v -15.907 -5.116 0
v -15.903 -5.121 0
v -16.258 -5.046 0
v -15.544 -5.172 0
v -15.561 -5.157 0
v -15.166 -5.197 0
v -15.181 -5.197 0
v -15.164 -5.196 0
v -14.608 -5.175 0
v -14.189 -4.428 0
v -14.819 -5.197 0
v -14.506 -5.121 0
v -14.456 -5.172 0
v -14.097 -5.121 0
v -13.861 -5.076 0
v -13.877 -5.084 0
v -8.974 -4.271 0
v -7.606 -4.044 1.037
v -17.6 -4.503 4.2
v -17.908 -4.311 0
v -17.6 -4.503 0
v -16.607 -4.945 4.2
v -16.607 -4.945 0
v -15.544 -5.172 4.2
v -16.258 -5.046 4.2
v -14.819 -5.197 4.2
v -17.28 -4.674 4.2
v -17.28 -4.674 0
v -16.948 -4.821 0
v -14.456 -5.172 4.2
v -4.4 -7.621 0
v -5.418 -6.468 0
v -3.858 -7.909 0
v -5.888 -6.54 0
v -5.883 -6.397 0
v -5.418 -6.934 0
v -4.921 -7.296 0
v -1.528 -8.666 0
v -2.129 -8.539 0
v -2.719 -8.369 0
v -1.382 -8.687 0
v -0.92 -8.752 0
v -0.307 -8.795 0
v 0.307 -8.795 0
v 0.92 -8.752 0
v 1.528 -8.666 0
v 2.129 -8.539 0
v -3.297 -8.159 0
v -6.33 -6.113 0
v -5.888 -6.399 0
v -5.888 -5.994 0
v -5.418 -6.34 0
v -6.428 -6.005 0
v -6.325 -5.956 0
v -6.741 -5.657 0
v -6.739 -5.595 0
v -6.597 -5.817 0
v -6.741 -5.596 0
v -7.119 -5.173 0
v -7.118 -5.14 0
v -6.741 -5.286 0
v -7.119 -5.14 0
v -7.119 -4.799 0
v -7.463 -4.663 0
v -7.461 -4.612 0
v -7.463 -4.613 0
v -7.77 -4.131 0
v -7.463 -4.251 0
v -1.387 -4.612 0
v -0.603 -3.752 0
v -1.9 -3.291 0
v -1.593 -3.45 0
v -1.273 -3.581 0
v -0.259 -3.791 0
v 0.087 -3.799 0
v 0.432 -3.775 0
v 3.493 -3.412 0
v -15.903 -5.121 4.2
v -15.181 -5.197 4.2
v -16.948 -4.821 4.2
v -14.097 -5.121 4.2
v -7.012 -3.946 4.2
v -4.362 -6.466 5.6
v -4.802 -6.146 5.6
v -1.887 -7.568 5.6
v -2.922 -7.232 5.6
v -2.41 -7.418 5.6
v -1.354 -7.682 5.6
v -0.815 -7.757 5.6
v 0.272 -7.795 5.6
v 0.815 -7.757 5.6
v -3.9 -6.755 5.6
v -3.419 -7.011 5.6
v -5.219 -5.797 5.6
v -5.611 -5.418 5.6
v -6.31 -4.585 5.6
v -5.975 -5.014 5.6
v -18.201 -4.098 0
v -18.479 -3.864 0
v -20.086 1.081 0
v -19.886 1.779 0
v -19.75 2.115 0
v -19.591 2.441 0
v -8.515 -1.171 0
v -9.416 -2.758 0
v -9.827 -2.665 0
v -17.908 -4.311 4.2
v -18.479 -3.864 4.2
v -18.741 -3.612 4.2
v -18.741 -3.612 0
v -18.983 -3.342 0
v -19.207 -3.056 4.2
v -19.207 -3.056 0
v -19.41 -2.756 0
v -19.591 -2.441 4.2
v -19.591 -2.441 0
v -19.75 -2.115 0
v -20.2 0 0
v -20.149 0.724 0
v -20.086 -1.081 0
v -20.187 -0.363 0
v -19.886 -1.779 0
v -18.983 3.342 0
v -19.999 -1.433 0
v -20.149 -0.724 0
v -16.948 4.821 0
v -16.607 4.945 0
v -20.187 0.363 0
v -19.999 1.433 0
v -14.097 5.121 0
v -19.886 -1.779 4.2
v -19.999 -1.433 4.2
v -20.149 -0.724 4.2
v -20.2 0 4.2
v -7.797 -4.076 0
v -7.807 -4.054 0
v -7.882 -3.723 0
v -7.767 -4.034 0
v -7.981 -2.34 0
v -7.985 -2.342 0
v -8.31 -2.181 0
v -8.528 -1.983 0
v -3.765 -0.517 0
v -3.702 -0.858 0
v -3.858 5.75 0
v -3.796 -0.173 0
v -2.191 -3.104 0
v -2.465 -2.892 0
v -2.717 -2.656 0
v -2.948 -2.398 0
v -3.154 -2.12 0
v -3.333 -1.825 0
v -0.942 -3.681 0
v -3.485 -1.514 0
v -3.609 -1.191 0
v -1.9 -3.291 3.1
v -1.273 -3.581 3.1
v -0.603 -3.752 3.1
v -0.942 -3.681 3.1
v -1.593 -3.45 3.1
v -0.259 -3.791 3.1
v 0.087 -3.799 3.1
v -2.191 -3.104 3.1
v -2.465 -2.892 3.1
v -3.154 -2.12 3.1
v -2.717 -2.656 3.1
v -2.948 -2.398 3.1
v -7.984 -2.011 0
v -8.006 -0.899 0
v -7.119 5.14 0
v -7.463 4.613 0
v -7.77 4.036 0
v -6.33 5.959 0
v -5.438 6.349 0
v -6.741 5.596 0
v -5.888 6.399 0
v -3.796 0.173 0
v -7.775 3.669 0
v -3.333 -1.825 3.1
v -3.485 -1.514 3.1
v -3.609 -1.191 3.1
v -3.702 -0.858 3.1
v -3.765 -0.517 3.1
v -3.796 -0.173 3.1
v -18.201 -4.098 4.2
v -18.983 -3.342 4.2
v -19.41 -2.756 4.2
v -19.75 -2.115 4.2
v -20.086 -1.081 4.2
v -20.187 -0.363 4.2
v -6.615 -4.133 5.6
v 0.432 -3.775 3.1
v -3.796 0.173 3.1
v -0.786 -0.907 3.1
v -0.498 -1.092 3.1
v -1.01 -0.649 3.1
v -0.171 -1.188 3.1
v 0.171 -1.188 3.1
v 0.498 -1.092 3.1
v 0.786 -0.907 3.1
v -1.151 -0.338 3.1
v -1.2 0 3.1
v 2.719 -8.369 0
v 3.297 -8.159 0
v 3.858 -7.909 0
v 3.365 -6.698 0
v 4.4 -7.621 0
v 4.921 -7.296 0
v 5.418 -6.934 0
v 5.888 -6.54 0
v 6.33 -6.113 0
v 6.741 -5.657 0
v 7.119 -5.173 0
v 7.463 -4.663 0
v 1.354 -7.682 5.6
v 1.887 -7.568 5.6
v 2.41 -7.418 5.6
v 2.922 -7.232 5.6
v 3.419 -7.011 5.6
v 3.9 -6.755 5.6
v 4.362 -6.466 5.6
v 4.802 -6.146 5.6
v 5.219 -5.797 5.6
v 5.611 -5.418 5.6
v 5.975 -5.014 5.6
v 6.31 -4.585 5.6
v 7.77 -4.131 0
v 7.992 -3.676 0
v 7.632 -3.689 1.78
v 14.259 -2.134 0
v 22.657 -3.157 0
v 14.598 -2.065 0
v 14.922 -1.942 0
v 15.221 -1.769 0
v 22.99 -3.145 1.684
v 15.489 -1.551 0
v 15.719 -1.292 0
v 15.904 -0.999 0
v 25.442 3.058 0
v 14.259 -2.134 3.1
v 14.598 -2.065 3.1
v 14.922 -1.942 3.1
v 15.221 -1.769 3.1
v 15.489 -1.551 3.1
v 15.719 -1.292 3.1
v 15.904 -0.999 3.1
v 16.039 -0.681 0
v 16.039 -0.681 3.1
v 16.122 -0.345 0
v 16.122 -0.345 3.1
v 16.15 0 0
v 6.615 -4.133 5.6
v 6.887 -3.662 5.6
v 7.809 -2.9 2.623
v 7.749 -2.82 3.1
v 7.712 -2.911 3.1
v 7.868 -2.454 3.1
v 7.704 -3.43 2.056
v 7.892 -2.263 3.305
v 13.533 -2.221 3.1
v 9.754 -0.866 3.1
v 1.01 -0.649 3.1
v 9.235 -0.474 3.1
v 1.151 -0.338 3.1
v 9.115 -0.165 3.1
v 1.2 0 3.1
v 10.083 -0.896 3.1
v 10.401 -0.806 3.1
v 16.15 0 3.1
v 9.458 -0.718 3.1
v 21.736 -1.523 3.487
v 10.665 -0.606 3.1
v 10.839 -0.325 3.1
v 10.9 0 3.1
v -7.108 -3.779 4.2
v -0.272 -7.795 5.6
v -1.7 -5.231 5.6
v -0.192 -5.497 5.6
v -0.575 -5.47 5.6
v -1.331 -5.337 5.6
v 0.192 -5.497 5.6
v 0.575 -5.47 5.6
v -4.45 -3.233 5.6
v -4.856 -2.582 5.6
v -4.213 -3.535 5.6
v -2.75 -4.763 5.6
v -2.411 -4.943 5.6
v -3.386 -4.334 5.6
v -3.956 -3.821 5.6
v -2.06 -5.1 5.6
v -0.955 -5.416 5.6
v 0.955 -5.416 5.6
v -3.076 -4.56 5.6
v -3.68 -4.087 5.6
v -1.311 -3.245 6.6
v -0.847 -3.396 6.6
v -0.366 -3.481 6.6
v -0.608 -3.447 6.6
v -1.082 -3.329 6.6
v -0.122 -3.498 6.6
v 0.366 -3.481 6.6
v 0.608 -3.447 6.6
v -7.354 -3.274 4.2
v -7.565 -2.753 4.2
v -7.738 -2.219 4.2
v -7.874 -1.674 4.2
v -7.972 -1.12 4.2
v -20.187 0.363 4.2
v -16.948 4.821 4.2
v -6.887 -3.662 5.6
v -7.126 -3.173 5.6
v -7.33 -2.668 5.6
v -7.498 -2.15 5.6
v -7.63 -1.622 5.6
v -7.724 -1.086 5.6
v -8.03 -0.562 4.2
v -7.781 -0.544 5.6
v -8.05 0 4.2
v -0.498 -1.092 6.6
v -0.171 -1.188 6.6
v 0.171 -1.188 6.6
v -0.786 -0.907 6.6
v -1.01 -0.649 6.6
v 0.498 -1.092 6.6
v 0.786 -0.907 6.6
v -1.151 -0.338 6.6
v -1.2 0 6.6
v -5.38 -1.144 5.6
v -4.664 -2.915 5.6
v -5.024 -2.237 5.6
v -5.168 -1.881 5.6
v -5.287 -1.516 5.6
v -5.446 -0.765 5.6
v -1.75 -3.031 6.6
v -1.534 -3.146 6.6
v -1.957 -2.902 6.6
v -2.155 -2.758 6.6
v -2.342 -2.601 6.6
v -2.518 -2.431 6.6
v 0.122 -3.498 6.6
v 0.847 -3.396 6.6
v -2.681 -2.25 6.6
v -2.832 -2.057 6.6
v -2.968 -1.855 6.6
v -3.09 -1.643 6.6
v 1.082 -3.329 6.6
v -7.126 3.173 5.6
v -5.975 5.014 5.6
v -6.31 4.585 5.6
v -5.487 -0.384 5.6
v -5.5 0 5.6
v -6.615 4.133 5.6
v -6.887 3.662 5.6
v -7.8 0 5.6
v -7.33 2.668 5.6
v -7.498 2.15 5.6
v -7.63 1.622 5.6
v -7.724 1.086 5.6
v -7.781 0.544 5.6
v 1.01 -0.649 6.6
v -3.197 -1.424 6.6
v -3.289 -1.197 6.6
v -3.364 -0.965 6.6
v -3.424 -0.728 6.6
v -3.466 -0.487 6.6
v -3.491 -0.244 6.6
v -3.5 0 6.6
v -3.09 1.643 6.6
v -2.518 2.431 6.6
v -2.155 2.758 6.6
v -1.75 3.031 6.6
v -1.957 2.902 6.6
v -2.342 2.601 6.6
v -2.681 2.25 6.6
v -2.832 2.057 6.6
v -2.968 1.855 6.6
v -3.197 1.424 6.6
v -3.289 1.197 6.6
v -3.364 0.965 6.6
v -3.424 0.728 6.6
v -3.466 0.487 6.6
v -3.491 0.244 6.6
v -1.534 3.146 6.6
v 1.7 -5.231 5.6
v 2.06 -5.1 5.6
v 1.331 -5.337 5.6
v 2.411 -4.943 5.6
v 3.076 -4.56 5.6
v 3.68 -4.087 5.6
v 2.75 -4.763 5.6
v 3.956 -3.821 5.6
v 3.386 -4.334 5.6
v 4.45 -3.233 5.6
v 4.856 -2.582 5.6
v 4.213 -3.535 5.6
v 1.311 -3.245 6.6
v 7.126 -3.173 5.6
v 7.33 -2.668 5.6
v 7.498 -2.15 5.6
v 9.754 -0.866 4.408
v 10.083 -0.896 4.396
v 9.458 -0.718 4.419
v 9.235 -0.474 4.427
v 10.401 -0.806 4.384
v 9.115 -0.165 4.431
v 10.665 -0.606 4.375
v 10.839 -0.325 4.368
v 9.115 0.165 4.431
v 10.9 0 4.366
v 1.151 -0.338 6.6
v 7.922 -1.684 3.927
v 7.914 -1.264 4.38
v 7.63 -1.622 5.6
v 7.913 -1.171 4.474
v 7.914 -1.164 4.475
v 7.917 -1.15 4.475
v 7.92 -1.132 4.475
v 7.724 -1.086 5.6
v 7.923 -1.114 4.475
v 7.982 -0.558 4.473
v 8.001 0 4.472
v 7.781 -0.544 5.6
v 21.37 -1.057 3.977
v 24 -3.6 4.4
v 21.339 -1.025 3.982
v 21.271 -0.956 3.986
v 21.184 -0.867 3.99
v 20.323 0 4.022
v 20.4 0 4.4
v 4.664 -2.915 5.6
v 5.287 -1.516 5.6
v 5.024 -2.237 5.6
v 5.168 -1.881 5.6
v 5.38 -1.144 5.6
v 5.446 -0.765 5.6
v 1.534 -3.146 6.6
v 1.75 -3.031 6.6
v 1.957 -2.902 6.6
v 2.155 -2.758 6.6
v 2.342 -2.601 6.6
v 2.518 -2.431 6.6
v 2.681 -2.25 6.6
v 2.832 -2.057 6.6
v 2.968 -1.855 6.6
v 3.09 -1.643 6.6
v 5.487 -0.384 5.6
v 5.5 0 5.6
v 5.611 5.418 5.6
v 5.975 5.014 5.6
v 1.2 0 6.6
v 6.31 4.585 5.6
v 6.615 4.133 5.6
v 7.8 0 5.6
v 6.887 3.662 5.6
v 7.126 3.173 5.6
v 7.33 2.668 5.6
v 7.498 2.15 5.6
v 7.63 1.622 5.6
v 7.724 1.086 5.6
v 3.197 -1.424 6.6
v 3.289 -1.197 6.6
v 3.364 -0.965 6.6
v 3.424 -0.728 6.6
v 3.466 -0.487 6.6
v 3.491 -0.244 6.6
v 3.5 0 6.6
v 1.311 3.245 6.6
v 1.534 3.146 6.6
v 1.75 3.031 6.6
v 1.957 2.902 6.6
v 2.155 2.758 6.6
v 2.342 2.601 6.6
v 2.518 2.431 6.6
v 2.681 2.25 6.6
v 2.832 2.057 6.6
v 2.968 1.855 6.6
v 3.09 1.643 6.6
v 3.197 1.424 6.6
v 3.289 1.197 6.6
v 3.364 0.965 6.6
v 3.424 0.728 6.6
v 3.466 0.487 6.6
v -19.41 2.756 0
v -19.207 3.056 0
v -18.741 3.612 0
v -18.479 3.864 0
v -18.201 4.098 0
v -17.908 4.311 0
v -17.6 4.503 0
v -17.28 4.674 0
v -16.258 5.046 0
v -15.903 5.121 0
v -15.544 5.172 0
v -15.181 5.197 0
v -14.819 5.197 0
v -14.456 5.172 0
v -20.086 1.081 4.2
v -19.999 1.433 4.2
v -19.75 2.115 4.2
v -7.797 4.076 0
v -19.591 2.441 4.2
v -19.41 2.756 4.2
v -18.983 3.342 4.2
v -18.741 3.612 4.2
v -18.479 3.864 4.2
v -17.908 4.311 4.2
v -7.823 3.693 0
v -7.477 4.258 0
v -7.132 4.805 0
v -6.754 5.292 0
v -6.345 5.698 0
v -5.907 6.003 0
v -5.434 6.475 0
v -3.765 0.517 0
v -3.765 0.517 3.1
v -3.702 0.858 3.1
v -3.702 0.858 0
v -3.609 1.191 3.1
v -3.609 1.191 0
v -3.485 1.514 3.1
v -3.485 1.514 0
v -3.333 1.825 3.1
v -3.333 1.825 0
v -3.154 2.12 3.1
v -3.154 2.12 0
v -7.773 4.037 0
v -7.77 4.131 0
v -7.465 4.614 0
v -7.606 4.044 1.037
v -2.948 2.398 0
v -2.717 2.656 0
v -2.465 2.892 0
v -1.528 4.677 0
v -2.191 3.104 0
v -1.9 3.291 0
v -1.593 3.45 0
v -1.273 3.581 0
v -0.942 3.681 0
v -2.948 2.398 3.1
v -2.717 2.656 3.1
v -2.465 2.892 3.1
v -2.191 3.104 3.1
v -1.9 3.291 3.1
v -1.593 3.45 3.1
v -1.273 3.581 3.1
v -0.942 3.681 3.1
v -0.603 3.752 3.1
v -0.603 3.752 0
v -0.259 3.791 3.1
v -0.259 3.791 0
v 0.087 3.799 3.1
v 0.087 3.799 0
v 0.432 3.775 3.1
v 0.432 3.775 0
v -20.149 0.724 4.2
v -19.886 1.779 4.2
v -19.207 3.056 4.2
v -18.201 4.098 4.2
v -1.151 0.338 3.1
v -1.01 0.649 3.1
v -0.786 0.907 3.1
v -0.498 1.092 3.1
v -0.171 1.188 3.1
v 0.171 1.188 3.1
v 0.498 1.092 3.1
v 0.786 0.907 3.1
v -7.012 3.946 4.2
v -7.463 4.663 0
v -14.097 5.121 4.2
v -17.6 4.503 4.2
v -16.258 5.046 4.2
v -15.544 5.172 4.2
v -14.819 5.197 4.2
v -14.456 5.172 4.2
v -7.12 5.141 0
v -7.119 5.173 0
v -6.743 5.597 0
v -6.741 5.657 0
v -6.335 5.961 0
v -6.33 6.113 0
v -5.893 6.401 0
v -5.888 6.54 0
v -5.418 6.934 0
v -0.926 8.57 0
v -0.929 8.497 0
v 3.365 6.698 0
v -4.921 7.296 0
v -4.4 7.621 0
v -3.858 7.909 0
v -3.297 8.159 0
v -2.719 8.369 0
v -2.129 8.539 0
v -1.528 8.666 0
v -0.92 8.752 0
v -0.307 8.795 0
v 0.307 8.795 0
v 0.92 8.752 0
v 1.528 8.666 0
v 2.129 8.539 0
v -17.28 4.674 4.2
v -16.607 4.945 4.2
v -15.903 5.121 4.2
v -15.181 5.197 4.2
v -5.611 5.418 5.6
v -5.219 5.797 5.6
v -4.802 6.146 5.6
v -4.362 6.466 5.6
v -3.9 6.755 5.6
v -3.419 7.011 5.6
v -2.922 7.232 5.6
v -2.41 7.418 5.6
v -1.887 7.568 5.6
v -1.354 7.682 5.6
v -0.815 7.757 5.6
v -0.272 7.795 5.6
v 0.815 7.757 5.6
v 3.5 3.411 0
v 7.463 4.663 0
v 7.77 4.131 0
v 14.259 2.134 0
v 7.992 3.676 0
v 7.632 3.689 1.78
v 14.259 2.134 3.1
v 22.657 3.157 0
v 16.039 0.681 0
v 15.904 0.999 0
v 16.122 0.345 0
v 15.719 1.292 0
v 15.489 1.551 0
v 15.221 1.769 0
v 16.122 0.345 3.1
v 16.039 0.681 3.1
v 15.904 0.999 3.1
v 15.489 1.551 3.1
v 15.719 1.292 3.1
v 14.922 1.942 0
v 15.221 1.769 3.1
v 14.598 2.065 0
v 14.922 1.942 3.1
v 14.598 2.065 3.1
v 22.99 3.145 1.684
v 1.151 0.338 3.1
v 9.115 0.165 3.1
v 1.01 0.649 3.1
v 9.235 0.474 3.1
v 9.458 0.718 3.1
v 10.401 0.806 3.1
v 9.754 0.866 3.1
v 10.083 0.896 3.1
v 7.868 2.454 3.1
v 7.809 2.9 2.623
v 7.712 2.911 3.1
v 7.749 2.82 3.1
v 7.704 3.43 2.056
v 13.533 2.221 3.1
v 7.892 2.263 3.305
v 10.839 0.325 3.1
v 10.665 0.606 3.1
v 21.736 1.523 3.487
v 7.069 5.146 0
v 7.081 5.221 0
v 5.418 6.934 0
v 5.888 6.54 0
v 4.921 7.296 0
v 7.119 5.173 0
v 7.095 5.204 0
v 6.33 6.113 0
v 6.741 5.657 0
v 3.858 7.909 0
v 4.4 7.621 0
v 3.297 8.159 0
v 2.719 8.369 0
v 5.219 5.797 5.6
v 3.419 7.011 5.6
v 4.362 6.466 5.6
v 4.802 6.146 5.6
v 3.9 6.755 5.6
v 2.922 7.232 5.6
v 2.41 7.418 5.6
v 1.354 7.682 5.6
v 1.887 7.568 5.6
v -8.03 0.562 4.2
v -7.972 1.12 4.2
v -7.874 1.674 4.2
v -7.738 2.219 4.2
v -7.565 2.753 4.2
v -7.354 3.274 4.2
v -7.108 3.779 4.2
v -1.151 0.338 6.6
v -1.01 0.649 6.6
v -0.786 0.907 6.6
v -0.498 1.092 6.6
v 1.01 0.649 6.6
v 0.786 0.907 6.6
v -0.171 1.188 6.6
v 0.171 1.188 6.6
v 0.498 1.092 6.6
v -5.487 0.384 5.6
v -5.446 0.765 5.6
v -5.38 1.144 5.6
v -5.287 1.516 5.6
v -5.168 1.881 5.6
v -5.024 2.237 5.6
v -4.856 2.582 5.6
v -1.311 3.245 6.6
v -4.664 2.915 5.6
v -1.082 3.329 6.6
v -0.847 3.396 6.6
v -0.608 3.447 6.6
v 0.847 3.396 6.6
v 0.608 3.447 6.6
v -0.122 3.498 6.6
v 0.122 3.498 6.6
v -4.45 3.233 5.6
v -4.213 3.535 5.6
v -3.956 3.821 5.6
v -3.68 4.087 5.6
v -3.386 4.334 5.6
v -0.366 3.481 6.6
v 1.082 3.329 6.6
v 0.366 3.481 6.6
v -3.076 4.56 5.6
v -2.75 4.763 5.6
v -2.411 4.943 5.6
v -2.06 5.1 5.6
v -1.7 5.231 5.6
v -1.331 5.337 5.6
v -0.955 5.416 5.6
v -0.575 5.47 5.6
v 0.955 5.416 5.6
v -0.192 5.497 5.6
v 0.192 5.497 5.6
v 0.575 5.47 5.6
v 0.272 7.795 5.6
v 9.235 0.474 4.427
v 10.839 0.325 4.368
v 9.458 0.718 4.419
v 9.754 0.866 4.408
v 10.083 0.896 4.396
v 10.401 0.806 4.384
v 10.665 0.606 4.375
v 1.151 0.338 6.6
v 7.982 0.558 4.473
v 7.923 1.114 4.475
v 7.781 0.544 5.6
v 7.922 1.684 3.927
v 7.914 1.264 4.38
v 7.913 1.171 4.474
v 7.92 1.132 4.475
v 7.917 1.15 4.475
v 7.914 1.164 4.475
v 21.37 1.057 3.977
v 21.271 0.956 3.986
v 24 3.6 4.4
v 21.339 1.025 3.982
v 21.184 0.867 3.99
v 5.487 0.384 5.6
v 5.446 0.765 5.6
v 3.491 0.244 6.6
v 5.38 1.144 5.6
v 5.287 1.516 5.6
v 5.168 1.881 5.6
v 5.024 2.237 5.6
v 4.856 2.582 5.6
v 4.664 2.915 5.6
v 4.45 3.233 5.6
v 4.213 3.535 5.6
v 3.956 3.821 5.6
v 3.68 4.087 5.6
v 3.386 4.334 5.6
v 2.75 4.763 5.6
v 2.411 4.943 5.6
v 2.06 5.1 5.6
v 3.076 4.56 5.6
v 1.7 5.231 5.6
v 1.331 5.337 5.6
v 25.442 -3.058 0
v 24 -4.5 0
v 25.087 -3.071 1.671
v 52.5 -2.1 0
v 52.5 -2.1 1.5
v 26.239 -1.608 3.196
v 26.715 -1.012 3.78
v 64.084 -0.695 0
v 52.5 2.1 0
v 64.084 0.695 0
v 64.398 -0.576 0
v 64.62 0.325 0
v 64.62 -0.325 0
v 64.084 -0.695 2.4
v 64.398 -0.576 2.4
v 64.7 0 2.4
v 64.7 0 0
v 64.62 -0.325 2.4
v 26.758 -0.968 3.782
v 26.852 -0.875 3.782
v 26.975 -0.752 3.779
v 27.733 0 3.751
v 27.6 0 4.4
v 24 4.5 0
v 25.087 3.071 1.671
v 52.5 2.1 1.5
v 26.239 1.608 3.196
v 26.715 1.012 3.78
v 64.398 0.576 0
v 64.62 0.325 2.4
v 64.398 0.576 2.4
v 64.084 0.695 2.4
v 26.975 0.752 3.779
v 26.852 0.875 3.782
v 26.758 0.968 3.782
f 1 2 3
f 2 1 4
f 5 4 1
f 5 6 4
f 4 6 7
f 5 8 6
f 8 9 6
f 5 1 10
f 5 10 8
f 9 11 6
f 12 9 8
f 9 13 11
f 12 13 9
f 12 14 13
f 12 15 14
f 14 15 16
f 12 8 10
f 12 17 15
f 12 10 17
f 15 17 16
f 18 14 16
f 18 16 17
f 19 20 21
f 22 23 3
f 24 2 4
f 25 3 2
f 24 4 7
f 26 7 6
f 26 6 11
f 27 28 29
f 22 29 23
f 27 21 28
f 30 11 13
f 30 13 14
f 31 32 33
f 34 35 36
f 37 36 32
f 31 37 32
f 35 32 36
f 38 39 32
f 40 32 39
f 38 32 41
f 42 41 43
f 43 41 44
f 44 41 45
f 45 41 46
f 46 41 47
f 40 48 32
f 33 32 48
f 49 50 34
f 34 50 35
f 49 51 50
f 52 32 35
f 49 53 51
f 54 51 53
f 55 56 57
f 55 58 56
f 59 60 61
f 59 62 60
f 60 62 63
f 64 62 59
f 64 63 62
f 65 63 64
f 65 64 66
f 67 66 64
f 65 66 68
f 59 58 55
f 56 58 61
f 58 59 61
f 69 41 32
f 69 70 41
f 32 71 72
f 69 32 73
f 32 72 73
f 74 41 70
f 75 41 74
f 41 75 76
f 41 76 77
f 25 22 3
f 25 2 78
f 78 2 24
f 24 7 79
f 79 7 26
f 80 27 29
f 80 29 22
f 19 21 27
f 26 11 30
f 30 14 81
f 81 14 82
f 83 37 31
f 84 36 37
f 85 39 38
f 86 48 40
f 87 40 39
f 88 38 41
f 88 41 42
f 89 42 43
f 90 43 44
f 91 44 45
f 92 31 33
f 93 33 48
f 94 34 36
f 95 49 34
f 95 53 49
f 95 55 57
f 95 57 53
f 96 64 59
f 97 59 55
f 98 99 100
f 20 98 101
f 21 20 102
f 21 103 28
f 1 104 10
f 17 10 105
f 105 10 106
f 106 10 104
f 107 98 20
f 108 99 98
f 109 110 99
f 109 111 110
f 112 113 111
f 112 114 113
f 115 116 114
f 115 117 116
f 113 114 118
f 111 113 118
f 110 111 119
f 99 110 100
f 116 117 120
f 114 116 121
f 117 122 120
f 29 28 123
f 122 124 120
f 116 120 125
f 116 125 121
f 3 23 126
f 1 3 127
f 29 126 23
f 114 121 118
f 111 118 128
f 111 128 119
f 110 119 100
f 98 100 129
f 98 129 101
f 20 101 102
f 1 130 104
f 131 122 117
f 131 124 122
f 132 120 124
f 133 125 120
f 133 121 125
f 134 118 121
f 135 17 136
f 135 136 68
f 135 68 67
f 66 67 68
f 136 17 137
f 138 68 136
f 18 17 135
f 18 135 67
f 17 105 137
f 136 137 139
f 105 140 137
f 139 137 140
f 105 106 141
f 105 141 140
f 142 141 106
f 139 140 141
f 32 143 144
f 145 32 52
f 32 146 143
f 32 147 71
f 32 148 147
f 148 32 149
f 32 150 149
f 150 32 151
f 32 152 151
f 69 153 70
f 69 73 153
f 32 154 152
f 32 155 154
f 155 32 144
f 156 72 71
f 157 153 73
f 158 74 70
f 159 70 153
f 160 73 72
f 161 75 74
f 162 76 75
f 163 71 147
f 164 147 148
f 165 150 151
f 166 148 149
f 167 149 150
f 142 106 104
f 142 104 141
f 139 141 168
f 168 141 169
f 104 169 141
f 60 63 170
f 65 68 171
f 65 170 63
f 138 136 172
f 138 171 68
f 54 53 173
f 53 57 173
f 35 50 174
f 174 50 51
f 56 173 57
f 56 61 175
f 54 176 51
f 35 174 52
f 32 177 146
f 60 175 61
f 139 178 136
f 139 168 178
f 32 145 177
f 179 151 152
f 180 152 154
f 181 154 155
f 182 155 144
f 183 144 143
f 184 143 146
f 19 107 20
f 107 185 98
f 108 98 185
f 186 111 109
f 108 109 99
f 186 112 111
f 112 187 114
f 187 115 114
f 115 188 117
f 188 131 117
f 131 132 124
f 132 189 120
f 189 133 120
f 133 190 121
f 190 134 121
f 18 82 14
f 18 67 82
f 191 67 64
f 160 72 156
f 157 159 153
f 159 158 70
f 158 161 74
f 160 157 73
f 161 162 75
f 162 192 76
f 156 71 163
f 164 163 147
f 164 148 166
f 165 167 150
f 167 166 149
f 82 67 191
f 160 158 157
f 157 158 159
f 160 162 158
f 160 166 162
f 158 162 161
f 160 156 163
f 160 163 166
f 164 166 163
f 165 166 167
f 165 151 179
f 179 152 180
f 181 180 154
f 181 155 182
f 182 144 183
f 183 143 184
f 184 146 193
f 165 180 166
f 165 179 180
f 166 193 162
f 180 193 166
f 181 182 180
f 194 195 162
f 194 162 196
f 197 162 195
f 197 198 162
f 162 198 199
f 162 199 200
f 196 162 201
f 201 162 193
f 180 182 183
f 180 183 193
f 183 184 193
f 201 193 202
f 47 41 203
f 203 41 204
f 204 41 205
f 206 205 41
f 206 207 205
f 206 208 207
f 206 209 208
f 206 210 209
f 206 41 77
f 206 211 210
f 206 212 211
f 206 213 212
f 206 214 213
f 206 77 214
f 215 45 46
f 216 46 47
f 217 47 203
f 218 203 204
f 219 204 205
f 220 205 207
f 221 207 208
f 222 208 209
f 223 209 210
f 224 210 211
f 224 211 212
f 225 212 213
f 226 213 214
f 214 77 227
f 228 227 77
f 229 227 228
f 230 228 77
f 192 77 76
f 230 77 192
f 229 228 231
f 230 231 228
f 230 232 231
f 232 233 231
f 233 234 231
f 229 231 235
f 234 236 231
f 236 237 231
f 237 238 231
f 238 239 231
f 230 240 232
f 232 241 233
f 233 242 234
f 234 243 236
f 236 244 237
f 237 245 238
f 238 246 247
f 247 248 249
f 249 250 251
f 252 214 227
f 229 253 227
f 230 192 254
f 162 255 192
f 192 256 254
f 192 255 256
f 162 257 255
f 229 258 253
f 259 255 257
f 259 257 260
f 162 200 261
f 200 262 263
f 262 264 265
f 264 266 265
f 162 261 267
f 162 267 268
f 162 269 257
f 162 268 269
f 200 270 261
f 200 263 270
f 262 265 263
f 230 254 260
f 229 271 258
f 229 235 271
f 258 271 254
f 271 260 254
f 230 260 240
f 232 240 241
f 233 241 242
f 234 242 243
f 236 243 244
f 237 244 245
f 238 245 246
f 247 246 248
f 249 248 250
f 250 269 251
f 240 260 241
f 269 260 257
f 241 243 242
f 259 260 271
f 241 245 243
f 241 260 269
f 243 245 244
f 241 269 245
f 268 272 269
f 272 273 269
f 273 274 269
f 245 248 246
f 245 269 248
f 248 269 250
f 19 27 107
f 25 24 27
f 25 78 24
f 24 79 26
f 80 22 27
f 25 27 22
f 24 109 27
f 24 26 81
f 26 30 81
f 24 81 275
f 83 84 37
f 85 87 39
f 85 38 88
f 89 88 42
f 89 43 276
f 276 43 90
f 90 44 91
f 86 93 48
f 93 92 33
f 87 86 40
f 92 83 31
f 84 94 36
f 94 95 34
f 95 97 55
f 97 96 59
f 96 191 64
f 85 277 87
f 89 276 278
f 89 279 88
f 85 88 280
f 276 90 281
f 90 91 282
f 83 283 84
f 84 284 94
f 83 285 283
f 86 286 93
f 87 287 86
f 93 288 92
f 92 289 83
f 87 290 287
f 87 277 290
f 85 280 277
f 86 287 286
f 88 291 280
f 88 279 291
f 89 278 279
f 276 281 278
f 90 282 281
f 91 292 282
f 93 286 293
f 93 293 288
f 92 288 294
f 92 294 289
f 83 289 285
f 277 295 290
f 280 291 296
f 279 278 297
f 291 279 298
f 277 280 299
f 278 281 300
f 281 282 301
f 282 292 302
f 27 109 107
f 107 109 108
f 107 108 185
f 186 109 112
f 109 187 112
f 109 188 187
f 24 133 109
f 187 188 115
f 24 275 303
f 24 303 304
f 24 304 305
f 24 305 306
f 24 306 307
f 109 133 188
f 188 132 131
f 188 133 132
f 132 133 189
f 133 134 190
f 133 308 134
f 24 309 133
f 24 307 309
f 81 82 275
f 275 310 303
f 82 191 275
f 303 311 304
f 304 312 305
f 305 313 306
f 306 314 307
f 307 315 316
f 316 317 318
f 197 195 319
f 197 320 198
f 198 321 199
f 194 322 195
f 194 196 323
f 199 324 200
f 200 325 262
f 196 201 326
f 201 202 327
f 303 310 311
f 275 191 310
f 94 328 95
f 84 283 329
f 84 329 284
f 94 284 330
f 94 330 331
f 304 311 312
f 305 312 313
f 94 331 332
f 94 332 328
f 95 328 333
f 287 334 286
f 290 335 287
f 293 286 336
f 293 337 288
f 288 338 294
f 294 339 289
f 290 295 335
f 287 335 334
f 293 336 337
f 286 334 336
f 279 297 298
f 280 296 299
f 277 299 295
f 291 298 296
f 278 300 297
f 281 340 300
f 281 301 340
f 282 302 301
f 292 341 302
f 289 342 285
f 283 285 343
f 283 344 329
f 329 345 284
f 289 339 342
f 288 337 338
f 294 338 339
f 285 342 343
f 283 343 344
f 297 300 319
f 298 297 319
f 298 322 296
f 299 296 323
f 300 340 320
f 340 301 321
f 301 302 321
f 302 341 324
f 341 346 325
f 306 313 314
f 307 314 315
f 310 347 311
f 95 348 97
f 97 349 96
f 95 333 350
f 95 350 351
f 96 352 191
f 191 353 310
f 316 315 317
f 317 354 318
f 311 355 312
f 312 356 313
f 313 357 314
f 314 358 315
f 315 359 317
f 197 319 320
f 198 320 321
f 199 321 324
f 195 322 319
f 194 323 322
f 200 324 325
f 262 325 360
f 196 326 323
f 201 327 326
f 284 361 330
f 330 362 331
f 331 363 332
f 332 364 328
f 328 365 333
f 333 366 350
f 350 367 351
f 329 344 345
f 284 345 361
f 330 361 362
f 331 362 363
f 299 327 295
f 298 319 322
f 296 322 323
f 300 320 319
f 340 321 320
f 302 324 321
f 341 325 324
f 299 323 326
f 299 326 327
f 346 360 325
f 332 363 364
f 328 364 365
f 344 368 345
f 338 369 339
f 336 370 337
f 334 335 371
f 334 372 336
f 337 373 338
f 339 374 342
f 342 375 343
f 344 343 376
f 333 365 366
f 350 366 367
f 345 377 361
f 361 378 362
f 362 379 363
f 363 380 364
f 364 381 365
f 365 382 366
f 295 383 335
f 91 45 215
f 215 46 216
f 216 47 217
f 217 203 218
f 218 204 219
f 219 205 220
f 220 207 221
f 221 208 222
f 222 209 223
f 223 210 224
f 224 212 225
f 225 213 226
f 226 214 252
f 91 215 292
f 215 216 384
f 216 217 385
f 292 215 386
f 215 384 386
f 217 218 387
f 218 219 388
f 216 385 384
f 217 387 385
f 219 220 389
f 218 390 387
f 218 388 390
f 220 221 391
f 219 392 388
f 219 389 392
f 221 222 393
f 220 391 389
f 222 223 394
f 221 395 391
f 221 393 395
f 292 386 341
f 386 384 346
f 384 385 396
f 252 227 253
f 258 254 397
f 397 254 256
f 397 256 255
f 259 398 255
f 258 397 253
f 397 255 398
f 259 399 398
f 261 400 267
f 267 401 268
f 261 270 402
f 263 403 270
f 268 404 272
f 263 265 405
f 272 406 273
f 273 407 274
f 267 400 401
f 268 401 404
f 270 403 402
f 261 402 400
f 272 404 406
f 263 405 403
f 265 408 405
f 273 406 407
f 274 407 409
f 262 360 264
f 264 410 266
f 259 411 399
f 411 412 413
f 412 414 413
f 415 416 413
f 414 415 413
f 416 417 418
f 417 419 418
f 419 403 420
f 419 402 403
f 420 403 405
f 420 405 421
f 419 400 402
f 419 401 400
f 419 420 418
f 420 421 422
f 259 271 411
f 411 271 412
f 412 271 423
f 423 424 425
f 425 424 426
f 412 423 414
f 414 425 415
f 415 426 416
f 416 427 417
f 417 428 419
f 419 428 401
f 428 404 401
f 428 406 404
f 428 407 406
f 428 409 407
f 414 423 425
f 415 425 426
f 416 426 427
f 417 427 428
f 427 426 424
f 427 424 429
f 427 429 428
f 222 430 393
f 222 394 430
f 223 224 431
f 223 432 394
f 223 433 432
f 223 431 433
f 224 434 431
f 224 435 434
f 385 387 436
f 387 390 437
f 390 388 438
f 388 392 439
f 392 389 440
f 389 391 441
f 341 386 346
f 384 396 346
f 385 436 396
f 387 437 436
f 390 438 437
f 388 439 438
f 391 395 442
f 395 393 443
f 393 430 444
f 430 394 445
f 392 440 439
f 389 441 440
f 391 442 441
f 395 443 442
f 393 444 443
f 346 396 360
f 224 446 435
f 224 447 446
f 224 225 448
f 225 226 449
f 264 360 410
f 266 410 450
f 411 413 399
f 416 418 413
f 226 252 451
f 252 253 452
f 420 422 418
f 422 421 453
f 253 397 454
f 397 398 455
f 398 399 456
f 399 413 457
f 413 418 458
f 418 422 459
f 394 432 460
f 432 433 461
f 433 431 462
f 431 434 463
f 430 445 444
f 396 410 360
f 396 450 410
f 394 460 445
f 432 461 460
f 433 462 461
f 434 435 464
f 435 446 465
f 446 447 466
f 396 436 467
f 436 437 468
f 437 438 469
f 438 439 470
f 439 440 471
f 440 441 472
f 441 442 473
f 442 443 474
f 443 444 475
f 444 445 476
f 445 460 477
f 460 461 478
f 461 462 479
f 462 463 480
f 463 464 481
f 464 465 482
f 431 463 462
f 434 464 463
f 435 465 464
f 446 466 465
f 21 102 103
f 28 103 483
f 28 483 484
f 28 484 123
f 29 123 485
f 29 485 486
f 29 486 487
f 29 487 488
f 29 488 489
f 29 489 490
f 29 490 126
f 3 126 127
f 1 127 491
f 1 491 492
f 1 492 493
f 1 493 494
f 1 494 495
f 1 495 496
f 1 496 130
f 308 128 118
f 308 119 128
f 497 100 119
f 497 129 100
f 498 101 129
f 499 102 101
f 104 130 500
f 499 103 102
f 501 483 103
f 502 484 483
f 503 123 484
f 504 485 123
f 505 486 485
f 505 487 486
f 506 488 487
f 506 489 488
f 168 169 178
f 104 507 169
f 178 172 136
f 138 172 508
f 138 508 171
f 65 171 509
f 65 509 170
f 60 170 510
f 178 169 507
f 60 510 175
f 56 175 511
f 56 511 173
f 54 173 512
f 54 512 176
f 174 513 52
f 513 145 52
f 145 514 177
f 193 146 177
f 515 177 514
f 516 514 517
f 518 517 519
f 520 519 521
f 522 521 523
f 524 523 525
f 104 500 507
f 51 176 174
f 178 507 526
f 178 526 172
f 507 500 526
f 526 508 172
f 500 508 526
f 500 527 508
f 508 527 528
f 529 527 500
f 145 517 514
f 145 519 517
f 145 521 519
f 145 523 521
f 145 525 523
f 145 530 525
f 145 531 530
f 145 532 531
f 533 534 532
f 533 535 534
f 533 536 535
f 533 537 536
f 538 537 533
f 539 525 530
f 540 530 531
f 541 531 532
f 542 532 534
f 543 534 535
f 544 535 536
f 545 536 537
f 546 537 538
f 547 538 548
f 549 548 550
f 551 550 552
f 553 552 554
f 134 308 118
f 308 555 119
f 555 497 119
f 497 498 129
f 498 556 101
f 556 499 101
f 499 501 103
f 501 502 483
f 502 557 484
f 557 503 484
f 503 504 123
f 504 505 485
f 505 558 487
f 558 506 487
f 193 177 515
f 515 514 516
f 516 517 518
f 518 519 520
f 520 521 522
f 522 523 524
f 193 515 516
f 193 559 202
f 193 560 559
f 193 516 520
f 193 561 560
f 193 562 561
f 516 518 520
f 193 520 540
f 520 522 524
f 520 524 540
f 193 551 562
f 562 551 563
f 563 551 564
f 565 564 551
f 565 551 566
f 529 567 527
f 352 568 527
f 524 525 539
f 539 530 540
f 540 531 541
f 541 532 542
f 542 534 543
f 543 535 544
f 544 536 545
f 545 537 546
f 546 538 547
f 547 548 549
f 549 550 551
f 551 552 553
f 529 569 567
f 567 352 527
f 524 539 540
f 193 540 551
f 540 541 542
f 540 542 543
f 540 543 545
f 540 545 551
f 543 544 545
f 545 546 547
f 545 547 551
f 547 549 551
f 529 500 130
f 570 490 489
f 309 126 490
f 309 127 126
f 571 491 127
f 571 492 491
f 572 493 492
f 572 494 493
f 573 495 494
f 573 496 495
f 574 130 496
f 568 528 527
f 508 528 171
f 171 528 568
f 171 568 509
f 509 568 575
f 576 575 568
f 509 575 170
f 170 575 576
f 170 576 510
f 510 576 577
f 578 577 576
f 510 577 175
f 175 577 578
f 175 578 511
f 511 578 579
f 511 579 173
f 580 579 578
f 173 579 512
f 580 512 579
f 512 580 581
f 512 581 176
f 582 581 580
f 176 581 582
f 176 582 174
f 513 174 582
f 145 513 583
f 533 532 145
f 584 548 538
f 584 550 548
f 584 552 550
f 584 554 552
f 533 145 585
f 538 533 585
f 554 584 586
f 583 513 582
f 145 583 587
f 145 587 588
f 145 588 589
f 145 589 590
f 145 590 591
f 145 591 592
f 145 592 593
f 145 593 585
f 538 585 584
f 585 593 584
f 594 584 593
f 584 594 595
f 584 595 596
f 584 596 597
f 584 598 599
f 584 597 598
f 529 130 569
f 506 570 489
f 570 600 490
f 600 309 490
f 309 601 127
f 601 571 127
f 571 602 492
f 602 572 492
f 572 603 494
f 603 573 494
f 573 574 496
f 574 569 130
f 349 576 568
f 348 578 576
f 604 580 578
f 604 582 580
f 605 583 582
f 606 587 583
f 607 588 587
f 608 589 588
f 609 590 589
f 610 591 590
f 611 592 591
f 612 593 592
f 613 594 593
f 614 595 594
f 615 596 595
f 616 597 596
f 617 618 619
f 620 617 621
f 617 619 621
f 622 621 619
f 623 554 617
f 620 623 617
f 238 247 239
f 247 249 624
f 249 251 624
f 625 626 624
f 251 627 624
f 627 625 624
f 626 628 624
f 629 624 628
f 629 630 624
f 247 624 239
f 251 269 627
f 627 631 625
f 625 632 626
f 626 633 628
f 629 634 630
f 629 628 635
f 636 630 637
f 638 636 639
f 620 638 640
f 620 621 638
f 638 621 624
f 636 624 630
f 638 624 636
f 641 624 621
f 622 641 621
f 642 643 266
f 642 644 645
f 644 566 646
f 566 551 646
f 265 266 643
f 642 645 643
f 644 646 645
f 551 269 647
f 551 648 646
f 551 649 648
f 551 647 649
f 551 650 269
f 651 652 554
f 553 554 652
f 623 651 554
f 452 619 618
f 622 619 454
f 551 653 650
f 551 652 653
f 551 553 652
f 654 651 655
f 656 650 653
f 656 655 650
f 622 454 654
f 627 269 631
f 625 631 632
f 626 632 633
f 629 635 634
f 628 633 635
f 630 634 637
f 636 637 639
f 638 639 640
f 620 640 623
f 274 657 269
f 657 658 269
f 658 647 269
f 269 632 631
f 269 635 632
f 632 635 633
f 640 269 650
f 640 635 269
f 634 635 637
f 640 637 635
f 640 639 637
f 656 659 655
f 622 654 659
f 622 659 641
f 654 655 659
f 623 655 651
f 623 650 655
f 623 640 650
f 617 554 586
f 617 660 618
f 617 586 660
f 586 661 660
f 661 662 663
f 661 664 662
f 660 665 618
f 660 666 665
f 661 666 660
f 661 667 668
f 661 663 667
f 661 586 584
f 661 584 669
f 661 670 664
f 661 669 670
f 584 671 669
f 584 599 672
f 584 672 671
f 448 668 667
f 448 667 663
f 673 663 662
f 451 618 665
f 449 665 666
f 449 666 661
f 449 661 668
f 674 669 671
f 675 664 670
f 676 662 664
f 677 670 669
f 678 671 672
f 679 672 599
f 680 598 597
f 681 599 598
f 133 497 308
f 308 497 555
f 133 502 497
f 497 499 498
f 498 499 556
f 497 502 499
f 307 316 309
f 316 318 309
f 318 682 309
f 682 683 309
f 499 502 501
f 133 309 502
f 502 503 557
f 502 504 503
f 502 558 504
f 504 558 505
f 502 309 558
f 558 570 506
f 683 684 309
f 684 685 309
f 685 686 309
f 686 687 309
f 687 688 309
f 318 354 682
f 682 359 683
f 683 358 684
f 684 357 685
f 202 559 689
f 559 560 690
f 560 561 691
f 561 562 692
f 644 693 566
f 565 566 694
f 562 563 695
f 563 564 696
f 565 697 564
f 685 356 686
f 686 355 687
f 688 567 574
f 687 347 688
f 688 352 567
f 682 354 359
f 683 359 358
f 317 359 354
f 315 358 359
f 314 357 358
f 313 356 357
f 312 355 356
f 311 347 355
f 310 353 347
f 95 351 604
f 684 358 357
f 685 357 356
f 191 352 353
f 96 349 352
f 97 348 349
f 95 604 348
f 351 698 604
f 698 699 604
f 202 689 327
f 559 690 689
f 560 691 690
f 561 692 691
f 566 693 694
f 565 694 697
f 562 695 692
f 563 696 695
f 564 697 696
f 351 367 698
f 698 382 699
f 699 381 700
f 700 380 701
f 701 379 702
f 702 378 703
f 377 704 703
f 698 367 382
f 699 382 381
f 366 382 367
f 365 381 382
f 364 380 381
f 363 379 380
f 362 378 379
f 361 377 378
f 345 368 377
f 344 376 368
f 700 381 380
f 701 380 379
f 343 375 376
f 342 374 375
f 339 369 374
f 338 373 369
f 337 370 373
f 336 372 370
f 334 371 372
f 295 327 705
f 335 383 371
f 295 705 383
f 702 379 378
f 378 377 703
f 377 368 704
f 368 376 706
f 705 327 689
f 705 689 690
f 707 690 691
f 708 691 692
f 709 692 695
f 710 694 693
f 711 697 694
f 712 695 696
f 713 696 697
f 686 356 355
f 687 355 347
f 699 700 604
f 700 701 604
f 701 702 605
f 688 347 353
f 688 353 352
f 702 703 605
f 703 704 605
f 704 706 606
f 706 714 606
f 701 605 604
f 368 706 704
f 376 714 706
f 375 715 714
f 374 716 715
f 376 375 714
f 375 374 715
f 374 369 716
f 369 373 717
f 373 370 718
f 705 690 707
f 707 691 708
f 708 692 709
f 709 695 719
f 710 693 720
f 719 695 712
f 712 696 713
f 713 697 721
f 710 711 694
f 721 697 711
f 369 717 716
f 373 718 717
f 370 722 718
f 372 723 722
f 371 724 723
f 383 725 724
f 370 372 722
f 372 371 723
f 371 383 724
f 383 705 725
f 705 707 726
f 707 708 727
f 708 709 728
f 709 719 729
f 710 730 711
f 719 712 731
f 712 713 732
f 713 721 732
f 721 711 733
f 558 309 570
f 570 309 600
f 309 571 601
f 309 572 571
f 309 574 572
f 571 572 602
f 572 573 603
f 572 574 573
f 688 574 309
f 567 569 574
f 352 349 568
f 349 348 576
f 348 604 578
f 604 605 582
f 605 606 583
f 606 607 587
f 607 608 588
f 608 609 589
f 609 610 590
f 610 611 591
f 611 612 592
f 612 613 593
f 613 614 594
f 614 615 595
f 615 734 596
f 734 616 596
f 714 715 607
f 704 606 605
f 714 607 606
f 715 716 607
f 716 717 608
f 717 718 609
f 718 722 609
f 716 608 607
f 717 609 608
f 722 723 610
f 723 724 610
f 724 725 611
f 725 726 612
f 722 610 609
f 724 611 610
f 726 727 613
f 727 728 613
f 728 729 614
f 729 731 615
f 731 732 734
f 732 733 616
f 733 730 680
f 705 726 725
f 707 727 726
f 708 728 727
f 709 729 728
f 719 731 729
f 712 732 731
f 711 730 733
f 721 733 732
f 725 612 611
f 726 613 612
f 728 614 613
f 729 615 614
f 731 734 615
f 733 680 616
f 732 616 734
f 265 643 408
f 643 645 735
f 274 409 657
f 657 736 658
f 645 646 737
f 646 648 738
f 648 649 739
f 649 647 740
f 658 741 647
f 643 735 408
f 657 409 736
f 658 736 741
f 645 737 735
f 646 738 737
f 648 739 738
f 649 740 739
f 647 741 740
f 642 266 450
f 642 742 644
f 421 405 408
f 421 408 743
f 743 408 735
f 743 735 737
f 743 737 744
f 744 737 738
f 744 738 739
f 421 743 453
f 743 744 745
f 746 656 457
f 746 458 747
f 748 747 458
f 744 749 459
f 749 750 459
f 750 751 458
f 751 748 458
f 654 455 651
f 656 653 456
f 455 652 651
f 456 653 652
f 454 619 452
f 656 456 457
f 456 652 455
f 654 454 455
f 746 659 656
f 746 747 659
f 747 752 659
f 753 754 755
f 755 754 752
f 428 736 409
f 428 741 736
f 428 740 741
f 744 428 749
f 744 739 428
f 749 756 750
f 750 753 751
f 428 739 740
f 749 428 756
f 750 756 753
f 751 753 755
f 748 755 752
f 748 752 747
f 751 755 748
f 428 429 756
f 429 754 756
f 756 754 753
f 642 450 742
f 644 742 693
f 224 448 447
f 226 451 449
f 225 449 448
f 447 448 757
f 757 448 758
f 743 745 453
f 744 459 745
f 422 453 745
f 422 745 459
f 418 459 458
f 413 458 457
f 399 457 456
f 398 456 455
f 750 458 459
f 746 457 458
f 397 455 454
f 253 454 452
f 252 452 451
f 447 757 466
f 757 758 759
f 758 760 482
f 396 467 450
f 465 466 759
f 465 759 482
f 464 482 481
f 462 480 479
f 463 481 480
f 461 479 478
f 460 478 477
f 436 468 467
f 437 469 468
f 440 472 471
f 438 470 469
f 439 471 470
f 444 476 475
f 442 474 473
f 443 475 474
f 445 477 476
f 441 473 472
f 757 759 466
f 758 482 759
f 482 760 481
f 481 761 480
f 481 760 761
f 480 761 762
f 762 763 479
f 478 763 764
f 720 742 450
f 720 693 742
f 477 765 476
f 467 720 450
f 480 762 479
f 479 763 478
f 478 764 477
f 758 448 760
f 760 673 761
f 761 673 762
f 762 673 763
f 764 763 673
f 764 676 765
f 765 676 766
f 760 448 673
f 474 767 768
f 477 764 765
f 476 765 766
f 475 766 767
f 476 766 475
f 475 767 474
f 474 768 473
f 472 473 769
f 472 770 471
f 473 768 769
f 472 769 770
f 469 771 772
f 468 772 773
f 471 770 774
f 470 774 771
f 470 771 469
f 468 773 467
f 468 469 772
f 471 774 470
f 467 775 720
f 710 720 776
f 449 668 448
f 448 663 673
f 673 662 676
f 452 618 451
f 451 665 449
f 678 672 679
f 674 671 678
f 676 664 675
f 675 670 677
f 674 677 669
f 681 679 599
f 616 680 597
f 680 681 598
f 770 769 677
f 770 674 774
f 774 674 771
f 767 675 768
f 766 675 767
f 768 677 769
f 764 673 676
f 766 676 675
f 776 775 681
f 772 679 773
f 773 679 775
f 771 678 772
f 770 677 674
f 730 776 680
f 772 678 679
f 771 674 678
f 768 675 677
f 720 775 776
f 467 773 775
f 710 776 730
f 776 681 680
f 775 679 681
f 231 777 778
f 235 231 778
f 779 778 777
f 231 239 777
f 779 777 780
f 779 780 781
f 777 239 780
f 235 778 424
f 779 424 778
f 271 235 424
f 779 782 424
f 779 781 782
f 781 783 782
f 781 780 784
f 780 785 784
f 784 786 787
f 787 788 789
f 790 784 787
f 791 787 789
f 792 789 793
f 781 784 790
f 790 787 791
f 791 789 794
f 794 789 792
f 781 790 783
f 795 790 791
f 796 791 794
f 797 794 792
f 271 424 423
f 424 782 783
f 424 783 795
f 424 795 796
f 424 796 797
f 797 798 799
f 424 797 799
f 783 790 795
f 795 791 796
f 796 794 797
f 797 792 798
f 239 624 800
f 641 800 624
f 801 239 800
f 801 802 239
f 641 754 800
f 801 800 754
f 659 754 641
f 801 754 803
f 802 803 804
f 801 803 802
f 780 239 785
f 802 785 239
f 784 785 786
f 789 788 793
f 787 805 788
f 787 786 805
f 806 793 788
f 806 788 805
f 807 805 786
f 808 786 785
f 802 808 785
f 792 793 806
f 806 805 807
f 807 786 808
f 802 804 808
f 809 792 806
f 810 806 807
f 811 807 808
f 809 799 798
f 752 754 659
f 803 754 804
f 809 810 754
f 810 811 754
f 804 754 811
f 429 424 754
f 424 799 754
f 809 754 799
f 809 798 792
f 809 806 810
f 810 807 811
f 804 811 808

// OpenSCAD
// Hauntology Tabletop Print Kit — Prop #3: Haunt Needle (Gauge Pointer Needle)
// Colour: Lantern (#e0a43a, amber/matte gold)
// Size: 82 L x 18 W x 6.0 H mm (64 mm pointer tip radius from pivot)
// Mechanism: Underside pocket fits SG90 servo horn with 0.3 mm clearance
// Print orientation: Flat on back (Z = 0), zero supports.

include <_common.scad>

module prop_03_needle() {
  difference() {
    union() {
      // 1. Central circular boss hub at pivot (0,0)
      cylinder(h = 5.6, d1 = 17.6, d2 = 15.6);
      translate([0, 0, 5.6])
        cylinder(h = 1.0, d1 = 11.0, d2 = 7.0);

      // 2. Tapered Victorian gauge pointer blade (+X direction, 64 mm reach)
      hull() {
        translate([4.0, 0, 0]) cube([1.0, 7.6, 3.6], center = true);
        translate([4.0, 0, 4.2]) cube([1.0, 2.4, 0.8], center = true);
        translate([52.0, 0, 0]) cube([1.0, 4.2, 3.0], center = true);
        translate([64.0, 0, 0]) cylinder(h = 2.4, d = 1.4);
      }

      // Decorative diamond ring at mid-shaft
      translate([24.0, 0, 0])
        cylinder(h = 4.4, d1 = 9.0, d2 = 7.2, $fn = 4);

      // 3. Counterweight tail (-X direction, 16 mm)
      hull() {
        translate([-4.0, 0, 0]) cylinder(h = 4.2, d = 6.8);
        translate([-15.0, 0, 0]) cylinder(h = 4.2, d = 10.4);
      }
    }

    // Flatten bottom at Z = 0
    translate([0, 0, -5.0])
      cube([200, 100, 10.0], center = true);

    // 4. Keyed SG90 Single-Arm Horn Recess on Underside (anti-rotation slot + M2 hub & horn screw bores)
    translate([0, 0, -0.1])
      hull() {
        cylinder(h = 3.2, d = sg90_horn_hub_d);
        translate([14.0, 0, 0])
          cylinder(h = 3.2, d = sg90_horn_tip_d);
      }
    translate([0, 0, -0.1])
      cylinder(h = 8.0, d = 2.4);
    translate([10.0, 0, -0.1])
      cylinder(h = 6.0, d = 1.8);
  }
}

color(col_lantern) prop_03_needle();
